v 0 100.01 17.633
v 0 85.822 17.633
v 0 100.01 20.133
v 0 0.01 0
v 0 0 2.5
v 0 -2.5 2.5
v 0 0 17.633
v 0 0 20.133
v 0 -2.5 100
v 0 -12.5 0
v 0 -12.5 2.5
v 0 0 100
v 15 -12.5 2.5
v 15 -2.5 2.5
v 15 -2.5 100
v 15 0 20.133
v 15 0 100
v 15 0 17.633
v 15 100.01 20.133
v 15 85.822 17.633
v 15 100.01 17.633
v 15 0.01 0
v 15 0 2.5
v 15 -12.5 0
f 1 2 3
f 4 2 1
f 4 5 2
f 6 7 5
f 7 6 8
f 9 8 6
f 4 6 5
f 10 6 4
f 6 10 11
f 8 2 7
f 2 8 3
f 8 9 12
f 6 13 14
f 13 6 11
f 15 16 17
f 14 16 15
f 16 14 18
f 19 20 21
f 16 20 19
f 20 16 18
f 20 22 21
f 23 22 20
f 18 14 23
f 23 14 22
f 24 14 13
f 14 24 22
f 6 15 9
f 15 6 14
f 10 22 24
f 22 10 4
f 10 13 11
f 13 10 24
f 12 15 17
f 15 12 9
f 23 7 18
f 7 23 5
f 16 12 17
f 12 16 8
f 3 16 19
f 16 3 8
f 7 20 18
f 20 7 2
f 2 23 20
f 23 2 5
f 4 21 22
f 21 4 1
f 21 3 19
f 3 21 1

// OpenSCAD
width = 15;
base = [10, 100];
support = 100;
thick = 2.5;
angle = 80;

offset = sin(90-angle)/sin(angle) * support;

translate([0, -base.x-thick, 0])
cube([width, base.x, thick]);

translate([0, -thick, 0])
cube([width, thick, support]);

translate([0, 0, offset])
cube([width, support, thick]);

hull () {
  inf = 0.01;
  cube([width, inf, thick]);

  translate([0, support, offset])
  cube([width, inf, thick]);
}
